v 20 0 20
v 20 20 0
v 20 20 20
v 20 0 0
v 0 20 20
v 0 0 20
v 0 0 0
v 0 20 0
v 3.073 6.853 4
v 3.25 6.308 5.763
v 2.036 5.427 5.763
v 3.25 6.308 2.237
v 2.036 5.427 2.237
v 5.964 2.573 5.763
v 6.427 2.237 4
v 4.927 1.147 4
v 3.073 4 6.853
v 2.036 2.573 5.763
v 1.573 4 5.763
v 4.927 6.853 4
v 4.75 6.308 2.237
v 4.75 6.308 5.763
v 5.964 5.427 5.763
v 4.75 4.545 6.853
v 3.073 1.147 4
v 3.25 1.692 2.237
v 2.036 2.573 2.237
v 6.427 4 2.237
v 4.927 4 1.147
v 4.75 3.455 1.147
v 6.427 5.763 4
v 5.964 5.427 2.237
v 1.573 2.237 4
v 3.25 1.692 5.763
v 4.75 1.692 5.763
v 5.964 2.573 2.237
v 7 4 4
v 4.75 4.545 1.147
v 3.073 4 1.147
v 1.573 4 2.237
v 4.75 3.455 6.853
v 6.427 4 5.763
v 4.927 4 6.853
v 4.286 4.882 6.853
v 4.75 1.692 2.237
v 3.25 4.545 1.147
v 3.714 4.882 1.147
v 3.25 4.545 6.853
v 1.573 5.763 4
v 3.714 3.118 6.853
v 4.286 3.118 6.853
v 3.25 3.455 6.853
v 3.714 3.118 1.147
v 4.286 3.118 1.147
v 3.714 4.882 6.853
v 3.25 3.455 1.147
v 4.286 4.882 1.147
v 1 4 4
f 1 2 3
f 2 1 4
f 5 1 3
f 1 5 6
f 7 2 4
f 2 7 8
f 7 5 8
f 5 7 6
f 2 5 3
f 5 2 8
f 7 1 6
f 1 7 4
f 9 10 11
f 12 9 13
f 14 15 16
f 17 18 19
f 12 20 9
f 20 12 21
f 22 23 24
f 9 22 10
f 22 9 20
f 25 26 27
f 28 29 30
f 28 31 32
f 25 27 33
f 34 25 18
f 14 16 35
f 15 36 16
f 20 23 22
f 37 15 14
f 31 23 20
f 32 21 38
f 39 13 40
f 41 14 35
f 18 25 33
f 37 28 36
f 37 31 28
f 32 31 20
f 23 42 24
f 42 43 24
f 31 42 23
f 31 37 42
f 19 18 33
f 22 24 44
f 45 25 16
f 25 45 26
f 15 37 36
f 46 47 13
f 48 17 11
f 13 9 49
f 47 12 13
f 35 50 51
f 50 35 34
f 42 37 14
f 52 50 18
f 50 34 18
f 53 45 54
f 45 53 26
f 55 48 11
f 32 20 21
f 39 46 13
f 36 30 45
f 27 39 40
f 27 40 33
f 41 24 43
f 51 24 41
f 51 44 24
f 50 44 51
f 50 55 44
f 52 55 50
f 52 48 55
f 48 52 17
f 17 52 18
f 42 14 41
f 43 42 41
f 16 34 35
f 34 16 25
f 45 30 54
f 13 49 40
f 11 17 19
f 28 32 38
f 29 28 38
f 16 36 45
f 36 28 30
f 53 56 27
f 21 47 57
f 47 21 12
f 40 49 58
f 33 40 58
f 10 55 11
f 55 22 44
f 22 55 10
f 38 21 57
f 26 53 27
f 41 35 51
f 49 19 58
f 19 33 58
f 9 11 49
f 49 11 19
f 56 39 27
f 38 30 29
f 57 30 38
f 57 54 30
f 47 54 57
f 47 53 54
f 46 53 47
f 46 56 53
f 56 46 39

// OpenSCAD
// Parameters
cube_size = 20;
eye_radius = 3;
eye_offset_x = cube_size * 0.2;
eye_offset_y = cube_size * 0.2;
eye_offset_z = cube_size * 0.2;

difference() {
  cube([cube_size, cube_size, cube_size]);

  translate([eye_offset_x, eye_offset_y, eye_offset_z])
  sphere(eye_radius);
}
